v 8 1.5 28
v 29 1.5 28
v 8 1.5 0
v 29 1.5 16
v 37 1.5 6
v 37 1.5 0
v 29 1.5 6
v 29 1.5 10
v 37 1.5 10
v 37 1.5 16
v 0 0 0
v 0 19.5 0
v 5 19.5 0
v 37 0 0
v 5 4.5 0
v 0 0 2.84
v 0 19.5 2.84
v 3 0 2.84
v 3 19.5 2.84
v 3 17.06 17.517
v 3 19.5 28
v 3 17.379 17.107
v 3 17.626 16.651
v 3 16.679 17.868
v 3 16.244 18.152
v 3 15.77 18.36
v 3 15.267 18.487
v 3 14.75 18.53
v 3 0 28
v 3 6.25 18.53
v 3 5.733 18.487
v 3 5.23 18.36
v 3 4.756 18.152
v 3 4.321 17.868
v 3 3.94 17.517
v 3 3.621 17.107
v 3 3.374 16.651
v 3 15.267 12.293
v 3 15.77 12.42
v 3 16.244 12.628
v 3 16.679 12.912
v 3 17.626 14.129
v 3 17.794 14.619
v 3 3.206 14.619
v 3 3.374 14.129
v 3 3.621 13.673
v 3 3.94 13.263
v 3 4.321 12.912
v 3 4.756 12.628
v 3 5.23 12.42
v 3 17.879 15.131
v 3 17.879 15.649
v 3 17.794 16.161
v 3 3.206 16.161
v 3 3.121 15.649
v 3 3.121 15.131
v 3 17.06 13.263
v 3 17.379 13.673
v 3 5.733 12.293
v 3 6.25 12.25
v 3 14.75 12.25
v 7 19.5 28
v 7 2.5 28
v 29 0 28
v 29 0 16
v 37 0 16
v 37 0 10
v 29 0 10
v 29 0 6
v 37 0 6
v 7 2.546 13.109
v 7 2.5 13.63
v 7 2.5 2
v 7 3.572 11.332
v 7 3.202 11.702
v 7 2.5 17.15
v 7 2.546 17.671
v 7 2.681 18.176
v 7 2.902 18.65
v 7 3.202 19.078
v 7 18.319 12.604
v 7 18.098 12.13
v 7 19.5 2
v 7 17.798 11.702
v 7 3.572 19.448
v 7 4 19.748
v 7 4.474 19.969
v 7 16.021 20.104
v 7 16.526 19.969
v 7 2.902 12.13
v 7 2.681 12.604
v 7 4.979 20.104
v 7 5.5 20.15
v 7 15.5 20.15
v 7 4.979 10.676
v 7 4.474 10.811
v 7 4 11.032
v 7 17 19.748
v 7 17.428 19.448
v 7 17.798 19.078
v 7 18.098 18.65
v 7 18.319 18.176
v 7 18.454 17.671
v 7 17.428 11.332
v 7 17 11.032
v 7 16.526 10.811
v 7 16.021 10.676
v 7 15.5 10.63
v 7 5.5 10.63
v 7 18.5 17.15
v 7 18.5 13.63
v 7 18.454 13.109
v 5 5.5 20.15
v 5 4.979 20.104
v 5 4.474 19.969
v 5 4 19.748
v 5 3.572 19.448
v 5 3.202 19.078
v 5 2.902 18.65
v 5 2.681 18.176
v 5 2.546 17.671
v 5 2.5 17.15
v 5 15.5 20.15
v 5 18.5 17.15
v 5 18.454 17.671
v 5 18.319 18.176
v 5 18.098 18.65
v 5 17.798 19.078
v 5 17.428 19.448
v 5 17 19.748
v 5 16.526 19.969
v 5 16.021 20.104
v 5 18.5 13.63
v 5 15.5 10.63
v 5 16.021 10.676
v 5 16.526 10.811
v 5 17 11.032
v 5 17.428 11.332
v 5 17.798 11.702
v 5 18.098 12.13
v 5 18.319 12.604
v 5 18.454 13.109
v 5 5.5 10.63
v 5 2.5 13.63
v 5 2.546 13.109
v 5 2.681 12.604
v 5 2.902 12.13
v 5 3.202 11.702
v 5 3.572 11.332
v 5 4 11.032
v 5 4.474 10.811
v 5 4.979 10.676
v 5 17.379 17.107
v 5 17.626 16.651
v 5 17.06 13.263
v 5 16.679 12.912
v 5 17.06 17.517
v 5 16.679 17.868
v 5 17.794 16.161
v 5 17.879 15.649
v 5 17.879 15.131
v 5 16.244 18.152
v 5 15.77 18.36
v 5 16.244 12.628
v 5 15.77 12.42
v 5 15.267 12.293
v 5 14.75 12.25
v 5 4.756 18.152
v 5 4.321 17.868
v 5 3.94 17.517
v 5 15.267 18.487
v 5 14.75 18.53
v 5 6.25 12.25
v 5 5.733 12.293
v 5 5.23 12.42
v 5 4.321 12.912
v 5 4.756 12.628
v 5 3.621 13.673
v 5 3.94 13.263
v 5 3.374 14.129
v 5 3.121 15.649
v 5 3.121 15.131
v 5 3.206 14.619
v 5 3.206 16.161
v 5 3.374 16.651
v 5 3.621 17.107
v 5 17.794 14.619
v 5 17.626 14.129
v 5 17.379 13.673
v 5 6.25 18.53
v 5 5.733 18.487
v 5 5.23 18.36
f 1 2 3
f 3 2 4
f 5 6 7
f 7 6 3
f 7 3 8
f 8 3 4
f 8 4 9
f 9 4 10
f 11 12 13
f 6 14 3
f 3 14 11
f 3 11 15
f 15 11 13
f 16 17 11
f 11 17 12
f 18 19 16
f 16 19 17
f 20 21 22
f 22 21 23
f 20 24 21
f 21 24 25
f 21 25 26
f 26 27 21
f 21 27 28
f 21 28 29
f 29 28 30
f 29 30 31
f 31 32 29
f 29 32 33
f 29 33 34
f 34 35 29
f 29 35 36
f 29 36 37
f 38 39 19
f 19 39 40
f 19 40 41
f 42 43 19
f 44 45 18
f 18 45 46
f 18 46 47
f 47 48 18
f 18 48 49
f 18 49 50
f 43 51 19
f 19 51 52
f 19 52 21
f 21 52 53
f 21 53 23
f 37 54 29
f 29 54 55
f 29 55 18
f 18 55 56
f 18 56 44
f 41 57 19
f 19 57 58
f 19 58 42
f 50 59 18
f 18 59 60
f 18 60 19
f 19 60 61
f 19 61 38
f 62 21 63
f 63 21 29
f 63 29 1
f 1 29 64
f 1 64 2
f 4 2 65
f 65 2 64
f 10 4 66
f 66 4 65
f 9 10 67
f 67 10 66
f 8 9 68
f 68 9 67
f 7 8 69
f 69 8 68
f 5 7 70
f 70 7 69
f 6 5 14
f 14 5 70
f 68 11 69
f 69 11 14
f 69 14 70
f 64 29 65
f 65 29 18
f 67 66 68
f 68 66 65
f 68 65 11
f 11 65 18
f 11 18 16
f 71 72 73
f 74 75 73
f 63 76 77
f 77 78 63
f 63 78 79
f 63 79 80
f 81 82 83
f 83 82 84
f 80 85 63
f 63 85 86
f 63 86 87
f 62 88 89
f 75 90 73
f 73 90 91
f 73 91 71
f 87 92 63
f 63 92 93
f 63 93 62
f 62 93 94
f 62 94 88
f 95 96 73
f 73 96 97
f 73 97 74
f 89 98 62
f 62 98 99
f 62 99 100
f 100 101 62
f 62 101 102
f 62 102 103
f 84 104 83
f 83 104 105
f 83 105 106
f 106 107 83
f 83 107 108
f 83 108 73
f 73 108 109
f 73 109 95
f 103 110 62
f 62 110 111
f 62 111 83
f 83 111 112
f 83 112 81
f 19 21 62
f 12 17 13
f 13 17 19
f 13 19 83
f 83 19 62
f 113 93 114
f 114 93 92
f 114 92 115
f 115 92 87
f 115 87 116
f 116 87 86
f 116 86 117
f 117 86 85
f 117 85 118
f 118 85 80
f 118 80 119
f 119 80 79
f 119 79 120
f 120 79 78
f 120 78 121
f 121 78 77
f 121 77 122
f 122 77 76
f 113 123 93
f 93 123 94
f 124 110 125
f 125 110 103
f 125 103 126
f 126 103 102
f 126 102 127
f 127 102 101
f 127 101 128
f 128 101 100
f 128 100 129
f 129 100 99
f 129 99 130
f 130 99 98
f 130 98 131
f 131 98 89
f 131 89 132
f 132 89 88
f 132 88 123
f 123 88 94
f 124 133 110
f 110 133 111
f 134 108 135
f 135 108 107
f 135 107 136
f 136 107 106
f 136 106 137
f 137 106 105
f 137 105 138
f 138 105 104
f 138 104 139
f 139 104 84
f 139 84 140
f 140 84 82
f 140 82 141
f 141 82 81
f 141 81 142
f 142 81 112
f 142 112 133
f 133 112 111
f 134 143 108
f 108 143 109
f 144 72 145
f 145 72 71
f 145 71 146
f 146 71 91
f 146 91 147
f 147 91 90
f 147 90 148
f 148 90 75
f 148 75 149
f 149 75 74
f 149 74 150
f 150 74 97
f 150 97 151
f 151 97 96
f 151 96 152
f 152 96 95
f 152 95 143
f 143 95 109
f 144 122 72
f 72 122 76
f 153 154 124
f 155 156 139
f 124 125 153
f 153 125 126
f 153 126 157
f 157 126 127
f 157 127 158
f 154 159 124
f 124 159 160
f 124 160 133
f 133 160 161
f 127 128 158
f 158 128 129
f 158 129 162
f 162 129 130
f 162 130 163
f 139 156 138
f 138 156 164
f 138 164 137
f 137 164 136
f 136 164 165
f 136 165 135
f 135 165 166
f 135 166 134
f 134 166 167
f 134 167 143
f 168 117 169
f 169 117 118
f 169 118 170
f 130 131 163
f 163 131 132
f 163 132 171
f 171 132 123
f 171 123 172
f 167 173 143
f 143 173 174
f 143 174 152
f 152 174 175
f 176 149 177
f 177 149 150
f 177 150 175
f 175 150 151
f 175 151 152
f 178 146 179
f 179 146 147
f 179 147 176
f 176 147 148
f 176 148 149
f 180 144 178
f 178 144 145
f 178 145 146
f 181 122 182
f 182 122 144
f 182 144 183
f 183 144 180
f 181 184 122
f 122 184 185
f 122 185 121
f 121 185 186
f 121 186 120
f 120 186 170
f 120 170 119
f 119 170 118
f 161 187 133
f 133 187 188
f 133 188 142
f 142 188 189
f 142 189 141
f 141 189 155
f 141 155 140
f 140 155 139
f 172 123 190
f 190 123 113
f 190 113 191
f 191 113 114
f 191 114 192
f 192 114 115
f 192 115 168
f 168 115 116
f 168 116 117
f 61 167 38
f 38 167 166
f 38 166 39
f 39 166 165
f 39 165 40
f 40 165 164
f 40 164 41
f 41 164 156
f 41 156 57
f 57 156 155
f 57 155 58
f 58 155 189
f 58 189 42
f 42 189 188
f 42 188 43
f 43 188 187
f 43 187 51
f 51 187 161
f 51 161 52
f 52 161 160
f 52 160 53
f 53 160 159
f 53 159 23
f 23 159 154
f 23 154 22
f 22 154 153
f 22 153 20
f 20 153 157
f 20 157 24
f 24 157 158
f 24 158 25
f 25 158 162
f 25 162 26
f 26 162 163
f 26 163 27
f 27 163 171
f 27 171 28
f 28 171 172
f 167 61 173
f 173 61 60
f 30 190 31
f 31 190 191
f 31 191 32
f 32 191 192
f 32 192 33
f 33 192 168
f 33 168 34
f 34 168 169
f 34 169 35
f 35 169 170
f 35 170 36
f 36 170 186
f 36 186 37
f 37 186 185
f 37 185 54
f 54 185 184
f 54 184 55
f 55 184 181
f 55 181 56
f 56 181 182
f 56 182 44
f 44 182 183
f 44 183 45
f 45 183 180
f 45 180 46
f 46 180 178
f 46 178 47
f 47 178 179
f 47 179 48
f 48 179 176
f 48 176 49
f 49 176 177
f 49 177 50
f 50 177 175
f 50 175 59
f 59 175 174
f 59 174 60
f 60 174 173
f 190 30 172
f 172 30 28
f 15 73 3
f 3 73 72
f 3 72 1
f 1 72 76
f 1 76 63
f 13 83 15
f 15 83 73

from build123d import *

# Parameters (mm, degrees)
BOSS_EXTRUDE1_DEPTH      = 1.5
BOSS_EXTRUDE2_DEPTH      = 18
BOSS_EXTRUDE2_DEPTH_BACK = 1
CUT_EXTRUDE2_DEPTH       = 2
CUT_EXTRUDE3_DEPTH       = 47.778734485
CHAMFER1_SIZE            = 1
CHAMFER2_SIZE            = 2


with BuildPart() as part:
    # Sketch1 → Boss-Extrude1 (new body)
    with BuildSketch(Plane(origin=(0, 0, 0), x_dir=(1, 0, 0), z_dir=(0, 1, 0))):
        Polygon((0, -2.84), (0, 0), (37, 0), (37, -6), (29, -6), (29, -10), (37, -10), (37, -16), (29, -16), (29, -28), (3, -28), (3, -2.84), align=None)
    extrude(amount=BOSS_EXTRUDE1_DEPTH)

    # Sketch2 → Boss-Extrude2 (add, two sides: drawn at the far end of the back side and taken through both)
    with BuildSketch(Plane(origin=(0, 1.5, 0), x_dir=(1, 0, 0), z_dir=(0, 1, 0)).offset(-BOSS_EXTRUDE2_DEPTH_BACK)):
        Polygon((7, 0), (0, 0), (0, -2.84), (3, -2.84), (3, -28), (7, -28), align=None)
    extrude(amount=BOSS_EXTRUDE2_DEPTH + BOSS_EXTRUDE2_DEPTH_BACK)

    # Sketch4 → Cut-Extrude2 (cut)
    with BuildSketch(Plane(origin=(7, 0, 0), x_dir=(0, 0, -1), z_dir=(1, 0, 0))):
        with BuildLine():
            Line((-17.15, 2.5), (-13.63, 2.5))
            ThreePointArc((-13.63, 2.5), (-11.508679656, 3.378679656), (-10.63, 5.5))
            Line((-10.63, 5.5), (-10.63, 15.5))
            ThreePointArc((-10.63, 15.5), (-11.508679656, 17.621320344), (-13.63, 18.5))
            Line((-13.63, 18.5), (-17.15, 18.5))
            ThreePointArc((-17.15, 18.5), (-19.271320344, 17.621320344), (-20.15, 15.5))
            Line((-20.15, 15.5), (-20.15, 5.5))
            ThreePointArc((-20.15, 5.5), (-19.271320344, 3.378679656), (-17.15, 2.5))
        make_face()
    extrude(amount=-CUT_EXTRUDE2_DEPTH, mode=Mode.SUBTRACT)

    # Sketch5 → Cut-Extrude3 (cut, through all)
    with BuildSketch(Plane(origin=(5, 0, 0), x_dir=(0, 0, -1), z_dir=(1, 0, 0))):
        with BuildLine():
            Line((-12.25, 14.75), (-12.25, 6.25))
            ThreePointArc((-12.25, 6.25), (-15.39, 3.11), (-18.53, 6.25))
            Line((-18.53, 6.25), (-18.53, 14.75))
            ThreePointArc((-18.53, 14.75), (-15.39, 17.89), (-12.25, 14.75))
        make_face()
    extrude(amount=-CUT_EXTRUDE3_DEPTH, mode=Mode.SUBTRACT)

    # Chamfer1
    chamfer1_edges = [part.edges().sort_by_distance(p)[0] for p in [
        (7, 1.5, 14),
    ]]
    chamfer(chamfer1_edges, length=CHAMFER1_SIZE - 0.0001)  # a hair under: the kernel refuses the full size

    # Chamfer2
    chamfer2_edges = [part.edges().sort_by_distance(p)[0] for p in [
        (7, 10.99995, 0),
    ]]
    chamfer(chamfer2_edges, length=CHAMFER2_SIZE)


solid = part.part
